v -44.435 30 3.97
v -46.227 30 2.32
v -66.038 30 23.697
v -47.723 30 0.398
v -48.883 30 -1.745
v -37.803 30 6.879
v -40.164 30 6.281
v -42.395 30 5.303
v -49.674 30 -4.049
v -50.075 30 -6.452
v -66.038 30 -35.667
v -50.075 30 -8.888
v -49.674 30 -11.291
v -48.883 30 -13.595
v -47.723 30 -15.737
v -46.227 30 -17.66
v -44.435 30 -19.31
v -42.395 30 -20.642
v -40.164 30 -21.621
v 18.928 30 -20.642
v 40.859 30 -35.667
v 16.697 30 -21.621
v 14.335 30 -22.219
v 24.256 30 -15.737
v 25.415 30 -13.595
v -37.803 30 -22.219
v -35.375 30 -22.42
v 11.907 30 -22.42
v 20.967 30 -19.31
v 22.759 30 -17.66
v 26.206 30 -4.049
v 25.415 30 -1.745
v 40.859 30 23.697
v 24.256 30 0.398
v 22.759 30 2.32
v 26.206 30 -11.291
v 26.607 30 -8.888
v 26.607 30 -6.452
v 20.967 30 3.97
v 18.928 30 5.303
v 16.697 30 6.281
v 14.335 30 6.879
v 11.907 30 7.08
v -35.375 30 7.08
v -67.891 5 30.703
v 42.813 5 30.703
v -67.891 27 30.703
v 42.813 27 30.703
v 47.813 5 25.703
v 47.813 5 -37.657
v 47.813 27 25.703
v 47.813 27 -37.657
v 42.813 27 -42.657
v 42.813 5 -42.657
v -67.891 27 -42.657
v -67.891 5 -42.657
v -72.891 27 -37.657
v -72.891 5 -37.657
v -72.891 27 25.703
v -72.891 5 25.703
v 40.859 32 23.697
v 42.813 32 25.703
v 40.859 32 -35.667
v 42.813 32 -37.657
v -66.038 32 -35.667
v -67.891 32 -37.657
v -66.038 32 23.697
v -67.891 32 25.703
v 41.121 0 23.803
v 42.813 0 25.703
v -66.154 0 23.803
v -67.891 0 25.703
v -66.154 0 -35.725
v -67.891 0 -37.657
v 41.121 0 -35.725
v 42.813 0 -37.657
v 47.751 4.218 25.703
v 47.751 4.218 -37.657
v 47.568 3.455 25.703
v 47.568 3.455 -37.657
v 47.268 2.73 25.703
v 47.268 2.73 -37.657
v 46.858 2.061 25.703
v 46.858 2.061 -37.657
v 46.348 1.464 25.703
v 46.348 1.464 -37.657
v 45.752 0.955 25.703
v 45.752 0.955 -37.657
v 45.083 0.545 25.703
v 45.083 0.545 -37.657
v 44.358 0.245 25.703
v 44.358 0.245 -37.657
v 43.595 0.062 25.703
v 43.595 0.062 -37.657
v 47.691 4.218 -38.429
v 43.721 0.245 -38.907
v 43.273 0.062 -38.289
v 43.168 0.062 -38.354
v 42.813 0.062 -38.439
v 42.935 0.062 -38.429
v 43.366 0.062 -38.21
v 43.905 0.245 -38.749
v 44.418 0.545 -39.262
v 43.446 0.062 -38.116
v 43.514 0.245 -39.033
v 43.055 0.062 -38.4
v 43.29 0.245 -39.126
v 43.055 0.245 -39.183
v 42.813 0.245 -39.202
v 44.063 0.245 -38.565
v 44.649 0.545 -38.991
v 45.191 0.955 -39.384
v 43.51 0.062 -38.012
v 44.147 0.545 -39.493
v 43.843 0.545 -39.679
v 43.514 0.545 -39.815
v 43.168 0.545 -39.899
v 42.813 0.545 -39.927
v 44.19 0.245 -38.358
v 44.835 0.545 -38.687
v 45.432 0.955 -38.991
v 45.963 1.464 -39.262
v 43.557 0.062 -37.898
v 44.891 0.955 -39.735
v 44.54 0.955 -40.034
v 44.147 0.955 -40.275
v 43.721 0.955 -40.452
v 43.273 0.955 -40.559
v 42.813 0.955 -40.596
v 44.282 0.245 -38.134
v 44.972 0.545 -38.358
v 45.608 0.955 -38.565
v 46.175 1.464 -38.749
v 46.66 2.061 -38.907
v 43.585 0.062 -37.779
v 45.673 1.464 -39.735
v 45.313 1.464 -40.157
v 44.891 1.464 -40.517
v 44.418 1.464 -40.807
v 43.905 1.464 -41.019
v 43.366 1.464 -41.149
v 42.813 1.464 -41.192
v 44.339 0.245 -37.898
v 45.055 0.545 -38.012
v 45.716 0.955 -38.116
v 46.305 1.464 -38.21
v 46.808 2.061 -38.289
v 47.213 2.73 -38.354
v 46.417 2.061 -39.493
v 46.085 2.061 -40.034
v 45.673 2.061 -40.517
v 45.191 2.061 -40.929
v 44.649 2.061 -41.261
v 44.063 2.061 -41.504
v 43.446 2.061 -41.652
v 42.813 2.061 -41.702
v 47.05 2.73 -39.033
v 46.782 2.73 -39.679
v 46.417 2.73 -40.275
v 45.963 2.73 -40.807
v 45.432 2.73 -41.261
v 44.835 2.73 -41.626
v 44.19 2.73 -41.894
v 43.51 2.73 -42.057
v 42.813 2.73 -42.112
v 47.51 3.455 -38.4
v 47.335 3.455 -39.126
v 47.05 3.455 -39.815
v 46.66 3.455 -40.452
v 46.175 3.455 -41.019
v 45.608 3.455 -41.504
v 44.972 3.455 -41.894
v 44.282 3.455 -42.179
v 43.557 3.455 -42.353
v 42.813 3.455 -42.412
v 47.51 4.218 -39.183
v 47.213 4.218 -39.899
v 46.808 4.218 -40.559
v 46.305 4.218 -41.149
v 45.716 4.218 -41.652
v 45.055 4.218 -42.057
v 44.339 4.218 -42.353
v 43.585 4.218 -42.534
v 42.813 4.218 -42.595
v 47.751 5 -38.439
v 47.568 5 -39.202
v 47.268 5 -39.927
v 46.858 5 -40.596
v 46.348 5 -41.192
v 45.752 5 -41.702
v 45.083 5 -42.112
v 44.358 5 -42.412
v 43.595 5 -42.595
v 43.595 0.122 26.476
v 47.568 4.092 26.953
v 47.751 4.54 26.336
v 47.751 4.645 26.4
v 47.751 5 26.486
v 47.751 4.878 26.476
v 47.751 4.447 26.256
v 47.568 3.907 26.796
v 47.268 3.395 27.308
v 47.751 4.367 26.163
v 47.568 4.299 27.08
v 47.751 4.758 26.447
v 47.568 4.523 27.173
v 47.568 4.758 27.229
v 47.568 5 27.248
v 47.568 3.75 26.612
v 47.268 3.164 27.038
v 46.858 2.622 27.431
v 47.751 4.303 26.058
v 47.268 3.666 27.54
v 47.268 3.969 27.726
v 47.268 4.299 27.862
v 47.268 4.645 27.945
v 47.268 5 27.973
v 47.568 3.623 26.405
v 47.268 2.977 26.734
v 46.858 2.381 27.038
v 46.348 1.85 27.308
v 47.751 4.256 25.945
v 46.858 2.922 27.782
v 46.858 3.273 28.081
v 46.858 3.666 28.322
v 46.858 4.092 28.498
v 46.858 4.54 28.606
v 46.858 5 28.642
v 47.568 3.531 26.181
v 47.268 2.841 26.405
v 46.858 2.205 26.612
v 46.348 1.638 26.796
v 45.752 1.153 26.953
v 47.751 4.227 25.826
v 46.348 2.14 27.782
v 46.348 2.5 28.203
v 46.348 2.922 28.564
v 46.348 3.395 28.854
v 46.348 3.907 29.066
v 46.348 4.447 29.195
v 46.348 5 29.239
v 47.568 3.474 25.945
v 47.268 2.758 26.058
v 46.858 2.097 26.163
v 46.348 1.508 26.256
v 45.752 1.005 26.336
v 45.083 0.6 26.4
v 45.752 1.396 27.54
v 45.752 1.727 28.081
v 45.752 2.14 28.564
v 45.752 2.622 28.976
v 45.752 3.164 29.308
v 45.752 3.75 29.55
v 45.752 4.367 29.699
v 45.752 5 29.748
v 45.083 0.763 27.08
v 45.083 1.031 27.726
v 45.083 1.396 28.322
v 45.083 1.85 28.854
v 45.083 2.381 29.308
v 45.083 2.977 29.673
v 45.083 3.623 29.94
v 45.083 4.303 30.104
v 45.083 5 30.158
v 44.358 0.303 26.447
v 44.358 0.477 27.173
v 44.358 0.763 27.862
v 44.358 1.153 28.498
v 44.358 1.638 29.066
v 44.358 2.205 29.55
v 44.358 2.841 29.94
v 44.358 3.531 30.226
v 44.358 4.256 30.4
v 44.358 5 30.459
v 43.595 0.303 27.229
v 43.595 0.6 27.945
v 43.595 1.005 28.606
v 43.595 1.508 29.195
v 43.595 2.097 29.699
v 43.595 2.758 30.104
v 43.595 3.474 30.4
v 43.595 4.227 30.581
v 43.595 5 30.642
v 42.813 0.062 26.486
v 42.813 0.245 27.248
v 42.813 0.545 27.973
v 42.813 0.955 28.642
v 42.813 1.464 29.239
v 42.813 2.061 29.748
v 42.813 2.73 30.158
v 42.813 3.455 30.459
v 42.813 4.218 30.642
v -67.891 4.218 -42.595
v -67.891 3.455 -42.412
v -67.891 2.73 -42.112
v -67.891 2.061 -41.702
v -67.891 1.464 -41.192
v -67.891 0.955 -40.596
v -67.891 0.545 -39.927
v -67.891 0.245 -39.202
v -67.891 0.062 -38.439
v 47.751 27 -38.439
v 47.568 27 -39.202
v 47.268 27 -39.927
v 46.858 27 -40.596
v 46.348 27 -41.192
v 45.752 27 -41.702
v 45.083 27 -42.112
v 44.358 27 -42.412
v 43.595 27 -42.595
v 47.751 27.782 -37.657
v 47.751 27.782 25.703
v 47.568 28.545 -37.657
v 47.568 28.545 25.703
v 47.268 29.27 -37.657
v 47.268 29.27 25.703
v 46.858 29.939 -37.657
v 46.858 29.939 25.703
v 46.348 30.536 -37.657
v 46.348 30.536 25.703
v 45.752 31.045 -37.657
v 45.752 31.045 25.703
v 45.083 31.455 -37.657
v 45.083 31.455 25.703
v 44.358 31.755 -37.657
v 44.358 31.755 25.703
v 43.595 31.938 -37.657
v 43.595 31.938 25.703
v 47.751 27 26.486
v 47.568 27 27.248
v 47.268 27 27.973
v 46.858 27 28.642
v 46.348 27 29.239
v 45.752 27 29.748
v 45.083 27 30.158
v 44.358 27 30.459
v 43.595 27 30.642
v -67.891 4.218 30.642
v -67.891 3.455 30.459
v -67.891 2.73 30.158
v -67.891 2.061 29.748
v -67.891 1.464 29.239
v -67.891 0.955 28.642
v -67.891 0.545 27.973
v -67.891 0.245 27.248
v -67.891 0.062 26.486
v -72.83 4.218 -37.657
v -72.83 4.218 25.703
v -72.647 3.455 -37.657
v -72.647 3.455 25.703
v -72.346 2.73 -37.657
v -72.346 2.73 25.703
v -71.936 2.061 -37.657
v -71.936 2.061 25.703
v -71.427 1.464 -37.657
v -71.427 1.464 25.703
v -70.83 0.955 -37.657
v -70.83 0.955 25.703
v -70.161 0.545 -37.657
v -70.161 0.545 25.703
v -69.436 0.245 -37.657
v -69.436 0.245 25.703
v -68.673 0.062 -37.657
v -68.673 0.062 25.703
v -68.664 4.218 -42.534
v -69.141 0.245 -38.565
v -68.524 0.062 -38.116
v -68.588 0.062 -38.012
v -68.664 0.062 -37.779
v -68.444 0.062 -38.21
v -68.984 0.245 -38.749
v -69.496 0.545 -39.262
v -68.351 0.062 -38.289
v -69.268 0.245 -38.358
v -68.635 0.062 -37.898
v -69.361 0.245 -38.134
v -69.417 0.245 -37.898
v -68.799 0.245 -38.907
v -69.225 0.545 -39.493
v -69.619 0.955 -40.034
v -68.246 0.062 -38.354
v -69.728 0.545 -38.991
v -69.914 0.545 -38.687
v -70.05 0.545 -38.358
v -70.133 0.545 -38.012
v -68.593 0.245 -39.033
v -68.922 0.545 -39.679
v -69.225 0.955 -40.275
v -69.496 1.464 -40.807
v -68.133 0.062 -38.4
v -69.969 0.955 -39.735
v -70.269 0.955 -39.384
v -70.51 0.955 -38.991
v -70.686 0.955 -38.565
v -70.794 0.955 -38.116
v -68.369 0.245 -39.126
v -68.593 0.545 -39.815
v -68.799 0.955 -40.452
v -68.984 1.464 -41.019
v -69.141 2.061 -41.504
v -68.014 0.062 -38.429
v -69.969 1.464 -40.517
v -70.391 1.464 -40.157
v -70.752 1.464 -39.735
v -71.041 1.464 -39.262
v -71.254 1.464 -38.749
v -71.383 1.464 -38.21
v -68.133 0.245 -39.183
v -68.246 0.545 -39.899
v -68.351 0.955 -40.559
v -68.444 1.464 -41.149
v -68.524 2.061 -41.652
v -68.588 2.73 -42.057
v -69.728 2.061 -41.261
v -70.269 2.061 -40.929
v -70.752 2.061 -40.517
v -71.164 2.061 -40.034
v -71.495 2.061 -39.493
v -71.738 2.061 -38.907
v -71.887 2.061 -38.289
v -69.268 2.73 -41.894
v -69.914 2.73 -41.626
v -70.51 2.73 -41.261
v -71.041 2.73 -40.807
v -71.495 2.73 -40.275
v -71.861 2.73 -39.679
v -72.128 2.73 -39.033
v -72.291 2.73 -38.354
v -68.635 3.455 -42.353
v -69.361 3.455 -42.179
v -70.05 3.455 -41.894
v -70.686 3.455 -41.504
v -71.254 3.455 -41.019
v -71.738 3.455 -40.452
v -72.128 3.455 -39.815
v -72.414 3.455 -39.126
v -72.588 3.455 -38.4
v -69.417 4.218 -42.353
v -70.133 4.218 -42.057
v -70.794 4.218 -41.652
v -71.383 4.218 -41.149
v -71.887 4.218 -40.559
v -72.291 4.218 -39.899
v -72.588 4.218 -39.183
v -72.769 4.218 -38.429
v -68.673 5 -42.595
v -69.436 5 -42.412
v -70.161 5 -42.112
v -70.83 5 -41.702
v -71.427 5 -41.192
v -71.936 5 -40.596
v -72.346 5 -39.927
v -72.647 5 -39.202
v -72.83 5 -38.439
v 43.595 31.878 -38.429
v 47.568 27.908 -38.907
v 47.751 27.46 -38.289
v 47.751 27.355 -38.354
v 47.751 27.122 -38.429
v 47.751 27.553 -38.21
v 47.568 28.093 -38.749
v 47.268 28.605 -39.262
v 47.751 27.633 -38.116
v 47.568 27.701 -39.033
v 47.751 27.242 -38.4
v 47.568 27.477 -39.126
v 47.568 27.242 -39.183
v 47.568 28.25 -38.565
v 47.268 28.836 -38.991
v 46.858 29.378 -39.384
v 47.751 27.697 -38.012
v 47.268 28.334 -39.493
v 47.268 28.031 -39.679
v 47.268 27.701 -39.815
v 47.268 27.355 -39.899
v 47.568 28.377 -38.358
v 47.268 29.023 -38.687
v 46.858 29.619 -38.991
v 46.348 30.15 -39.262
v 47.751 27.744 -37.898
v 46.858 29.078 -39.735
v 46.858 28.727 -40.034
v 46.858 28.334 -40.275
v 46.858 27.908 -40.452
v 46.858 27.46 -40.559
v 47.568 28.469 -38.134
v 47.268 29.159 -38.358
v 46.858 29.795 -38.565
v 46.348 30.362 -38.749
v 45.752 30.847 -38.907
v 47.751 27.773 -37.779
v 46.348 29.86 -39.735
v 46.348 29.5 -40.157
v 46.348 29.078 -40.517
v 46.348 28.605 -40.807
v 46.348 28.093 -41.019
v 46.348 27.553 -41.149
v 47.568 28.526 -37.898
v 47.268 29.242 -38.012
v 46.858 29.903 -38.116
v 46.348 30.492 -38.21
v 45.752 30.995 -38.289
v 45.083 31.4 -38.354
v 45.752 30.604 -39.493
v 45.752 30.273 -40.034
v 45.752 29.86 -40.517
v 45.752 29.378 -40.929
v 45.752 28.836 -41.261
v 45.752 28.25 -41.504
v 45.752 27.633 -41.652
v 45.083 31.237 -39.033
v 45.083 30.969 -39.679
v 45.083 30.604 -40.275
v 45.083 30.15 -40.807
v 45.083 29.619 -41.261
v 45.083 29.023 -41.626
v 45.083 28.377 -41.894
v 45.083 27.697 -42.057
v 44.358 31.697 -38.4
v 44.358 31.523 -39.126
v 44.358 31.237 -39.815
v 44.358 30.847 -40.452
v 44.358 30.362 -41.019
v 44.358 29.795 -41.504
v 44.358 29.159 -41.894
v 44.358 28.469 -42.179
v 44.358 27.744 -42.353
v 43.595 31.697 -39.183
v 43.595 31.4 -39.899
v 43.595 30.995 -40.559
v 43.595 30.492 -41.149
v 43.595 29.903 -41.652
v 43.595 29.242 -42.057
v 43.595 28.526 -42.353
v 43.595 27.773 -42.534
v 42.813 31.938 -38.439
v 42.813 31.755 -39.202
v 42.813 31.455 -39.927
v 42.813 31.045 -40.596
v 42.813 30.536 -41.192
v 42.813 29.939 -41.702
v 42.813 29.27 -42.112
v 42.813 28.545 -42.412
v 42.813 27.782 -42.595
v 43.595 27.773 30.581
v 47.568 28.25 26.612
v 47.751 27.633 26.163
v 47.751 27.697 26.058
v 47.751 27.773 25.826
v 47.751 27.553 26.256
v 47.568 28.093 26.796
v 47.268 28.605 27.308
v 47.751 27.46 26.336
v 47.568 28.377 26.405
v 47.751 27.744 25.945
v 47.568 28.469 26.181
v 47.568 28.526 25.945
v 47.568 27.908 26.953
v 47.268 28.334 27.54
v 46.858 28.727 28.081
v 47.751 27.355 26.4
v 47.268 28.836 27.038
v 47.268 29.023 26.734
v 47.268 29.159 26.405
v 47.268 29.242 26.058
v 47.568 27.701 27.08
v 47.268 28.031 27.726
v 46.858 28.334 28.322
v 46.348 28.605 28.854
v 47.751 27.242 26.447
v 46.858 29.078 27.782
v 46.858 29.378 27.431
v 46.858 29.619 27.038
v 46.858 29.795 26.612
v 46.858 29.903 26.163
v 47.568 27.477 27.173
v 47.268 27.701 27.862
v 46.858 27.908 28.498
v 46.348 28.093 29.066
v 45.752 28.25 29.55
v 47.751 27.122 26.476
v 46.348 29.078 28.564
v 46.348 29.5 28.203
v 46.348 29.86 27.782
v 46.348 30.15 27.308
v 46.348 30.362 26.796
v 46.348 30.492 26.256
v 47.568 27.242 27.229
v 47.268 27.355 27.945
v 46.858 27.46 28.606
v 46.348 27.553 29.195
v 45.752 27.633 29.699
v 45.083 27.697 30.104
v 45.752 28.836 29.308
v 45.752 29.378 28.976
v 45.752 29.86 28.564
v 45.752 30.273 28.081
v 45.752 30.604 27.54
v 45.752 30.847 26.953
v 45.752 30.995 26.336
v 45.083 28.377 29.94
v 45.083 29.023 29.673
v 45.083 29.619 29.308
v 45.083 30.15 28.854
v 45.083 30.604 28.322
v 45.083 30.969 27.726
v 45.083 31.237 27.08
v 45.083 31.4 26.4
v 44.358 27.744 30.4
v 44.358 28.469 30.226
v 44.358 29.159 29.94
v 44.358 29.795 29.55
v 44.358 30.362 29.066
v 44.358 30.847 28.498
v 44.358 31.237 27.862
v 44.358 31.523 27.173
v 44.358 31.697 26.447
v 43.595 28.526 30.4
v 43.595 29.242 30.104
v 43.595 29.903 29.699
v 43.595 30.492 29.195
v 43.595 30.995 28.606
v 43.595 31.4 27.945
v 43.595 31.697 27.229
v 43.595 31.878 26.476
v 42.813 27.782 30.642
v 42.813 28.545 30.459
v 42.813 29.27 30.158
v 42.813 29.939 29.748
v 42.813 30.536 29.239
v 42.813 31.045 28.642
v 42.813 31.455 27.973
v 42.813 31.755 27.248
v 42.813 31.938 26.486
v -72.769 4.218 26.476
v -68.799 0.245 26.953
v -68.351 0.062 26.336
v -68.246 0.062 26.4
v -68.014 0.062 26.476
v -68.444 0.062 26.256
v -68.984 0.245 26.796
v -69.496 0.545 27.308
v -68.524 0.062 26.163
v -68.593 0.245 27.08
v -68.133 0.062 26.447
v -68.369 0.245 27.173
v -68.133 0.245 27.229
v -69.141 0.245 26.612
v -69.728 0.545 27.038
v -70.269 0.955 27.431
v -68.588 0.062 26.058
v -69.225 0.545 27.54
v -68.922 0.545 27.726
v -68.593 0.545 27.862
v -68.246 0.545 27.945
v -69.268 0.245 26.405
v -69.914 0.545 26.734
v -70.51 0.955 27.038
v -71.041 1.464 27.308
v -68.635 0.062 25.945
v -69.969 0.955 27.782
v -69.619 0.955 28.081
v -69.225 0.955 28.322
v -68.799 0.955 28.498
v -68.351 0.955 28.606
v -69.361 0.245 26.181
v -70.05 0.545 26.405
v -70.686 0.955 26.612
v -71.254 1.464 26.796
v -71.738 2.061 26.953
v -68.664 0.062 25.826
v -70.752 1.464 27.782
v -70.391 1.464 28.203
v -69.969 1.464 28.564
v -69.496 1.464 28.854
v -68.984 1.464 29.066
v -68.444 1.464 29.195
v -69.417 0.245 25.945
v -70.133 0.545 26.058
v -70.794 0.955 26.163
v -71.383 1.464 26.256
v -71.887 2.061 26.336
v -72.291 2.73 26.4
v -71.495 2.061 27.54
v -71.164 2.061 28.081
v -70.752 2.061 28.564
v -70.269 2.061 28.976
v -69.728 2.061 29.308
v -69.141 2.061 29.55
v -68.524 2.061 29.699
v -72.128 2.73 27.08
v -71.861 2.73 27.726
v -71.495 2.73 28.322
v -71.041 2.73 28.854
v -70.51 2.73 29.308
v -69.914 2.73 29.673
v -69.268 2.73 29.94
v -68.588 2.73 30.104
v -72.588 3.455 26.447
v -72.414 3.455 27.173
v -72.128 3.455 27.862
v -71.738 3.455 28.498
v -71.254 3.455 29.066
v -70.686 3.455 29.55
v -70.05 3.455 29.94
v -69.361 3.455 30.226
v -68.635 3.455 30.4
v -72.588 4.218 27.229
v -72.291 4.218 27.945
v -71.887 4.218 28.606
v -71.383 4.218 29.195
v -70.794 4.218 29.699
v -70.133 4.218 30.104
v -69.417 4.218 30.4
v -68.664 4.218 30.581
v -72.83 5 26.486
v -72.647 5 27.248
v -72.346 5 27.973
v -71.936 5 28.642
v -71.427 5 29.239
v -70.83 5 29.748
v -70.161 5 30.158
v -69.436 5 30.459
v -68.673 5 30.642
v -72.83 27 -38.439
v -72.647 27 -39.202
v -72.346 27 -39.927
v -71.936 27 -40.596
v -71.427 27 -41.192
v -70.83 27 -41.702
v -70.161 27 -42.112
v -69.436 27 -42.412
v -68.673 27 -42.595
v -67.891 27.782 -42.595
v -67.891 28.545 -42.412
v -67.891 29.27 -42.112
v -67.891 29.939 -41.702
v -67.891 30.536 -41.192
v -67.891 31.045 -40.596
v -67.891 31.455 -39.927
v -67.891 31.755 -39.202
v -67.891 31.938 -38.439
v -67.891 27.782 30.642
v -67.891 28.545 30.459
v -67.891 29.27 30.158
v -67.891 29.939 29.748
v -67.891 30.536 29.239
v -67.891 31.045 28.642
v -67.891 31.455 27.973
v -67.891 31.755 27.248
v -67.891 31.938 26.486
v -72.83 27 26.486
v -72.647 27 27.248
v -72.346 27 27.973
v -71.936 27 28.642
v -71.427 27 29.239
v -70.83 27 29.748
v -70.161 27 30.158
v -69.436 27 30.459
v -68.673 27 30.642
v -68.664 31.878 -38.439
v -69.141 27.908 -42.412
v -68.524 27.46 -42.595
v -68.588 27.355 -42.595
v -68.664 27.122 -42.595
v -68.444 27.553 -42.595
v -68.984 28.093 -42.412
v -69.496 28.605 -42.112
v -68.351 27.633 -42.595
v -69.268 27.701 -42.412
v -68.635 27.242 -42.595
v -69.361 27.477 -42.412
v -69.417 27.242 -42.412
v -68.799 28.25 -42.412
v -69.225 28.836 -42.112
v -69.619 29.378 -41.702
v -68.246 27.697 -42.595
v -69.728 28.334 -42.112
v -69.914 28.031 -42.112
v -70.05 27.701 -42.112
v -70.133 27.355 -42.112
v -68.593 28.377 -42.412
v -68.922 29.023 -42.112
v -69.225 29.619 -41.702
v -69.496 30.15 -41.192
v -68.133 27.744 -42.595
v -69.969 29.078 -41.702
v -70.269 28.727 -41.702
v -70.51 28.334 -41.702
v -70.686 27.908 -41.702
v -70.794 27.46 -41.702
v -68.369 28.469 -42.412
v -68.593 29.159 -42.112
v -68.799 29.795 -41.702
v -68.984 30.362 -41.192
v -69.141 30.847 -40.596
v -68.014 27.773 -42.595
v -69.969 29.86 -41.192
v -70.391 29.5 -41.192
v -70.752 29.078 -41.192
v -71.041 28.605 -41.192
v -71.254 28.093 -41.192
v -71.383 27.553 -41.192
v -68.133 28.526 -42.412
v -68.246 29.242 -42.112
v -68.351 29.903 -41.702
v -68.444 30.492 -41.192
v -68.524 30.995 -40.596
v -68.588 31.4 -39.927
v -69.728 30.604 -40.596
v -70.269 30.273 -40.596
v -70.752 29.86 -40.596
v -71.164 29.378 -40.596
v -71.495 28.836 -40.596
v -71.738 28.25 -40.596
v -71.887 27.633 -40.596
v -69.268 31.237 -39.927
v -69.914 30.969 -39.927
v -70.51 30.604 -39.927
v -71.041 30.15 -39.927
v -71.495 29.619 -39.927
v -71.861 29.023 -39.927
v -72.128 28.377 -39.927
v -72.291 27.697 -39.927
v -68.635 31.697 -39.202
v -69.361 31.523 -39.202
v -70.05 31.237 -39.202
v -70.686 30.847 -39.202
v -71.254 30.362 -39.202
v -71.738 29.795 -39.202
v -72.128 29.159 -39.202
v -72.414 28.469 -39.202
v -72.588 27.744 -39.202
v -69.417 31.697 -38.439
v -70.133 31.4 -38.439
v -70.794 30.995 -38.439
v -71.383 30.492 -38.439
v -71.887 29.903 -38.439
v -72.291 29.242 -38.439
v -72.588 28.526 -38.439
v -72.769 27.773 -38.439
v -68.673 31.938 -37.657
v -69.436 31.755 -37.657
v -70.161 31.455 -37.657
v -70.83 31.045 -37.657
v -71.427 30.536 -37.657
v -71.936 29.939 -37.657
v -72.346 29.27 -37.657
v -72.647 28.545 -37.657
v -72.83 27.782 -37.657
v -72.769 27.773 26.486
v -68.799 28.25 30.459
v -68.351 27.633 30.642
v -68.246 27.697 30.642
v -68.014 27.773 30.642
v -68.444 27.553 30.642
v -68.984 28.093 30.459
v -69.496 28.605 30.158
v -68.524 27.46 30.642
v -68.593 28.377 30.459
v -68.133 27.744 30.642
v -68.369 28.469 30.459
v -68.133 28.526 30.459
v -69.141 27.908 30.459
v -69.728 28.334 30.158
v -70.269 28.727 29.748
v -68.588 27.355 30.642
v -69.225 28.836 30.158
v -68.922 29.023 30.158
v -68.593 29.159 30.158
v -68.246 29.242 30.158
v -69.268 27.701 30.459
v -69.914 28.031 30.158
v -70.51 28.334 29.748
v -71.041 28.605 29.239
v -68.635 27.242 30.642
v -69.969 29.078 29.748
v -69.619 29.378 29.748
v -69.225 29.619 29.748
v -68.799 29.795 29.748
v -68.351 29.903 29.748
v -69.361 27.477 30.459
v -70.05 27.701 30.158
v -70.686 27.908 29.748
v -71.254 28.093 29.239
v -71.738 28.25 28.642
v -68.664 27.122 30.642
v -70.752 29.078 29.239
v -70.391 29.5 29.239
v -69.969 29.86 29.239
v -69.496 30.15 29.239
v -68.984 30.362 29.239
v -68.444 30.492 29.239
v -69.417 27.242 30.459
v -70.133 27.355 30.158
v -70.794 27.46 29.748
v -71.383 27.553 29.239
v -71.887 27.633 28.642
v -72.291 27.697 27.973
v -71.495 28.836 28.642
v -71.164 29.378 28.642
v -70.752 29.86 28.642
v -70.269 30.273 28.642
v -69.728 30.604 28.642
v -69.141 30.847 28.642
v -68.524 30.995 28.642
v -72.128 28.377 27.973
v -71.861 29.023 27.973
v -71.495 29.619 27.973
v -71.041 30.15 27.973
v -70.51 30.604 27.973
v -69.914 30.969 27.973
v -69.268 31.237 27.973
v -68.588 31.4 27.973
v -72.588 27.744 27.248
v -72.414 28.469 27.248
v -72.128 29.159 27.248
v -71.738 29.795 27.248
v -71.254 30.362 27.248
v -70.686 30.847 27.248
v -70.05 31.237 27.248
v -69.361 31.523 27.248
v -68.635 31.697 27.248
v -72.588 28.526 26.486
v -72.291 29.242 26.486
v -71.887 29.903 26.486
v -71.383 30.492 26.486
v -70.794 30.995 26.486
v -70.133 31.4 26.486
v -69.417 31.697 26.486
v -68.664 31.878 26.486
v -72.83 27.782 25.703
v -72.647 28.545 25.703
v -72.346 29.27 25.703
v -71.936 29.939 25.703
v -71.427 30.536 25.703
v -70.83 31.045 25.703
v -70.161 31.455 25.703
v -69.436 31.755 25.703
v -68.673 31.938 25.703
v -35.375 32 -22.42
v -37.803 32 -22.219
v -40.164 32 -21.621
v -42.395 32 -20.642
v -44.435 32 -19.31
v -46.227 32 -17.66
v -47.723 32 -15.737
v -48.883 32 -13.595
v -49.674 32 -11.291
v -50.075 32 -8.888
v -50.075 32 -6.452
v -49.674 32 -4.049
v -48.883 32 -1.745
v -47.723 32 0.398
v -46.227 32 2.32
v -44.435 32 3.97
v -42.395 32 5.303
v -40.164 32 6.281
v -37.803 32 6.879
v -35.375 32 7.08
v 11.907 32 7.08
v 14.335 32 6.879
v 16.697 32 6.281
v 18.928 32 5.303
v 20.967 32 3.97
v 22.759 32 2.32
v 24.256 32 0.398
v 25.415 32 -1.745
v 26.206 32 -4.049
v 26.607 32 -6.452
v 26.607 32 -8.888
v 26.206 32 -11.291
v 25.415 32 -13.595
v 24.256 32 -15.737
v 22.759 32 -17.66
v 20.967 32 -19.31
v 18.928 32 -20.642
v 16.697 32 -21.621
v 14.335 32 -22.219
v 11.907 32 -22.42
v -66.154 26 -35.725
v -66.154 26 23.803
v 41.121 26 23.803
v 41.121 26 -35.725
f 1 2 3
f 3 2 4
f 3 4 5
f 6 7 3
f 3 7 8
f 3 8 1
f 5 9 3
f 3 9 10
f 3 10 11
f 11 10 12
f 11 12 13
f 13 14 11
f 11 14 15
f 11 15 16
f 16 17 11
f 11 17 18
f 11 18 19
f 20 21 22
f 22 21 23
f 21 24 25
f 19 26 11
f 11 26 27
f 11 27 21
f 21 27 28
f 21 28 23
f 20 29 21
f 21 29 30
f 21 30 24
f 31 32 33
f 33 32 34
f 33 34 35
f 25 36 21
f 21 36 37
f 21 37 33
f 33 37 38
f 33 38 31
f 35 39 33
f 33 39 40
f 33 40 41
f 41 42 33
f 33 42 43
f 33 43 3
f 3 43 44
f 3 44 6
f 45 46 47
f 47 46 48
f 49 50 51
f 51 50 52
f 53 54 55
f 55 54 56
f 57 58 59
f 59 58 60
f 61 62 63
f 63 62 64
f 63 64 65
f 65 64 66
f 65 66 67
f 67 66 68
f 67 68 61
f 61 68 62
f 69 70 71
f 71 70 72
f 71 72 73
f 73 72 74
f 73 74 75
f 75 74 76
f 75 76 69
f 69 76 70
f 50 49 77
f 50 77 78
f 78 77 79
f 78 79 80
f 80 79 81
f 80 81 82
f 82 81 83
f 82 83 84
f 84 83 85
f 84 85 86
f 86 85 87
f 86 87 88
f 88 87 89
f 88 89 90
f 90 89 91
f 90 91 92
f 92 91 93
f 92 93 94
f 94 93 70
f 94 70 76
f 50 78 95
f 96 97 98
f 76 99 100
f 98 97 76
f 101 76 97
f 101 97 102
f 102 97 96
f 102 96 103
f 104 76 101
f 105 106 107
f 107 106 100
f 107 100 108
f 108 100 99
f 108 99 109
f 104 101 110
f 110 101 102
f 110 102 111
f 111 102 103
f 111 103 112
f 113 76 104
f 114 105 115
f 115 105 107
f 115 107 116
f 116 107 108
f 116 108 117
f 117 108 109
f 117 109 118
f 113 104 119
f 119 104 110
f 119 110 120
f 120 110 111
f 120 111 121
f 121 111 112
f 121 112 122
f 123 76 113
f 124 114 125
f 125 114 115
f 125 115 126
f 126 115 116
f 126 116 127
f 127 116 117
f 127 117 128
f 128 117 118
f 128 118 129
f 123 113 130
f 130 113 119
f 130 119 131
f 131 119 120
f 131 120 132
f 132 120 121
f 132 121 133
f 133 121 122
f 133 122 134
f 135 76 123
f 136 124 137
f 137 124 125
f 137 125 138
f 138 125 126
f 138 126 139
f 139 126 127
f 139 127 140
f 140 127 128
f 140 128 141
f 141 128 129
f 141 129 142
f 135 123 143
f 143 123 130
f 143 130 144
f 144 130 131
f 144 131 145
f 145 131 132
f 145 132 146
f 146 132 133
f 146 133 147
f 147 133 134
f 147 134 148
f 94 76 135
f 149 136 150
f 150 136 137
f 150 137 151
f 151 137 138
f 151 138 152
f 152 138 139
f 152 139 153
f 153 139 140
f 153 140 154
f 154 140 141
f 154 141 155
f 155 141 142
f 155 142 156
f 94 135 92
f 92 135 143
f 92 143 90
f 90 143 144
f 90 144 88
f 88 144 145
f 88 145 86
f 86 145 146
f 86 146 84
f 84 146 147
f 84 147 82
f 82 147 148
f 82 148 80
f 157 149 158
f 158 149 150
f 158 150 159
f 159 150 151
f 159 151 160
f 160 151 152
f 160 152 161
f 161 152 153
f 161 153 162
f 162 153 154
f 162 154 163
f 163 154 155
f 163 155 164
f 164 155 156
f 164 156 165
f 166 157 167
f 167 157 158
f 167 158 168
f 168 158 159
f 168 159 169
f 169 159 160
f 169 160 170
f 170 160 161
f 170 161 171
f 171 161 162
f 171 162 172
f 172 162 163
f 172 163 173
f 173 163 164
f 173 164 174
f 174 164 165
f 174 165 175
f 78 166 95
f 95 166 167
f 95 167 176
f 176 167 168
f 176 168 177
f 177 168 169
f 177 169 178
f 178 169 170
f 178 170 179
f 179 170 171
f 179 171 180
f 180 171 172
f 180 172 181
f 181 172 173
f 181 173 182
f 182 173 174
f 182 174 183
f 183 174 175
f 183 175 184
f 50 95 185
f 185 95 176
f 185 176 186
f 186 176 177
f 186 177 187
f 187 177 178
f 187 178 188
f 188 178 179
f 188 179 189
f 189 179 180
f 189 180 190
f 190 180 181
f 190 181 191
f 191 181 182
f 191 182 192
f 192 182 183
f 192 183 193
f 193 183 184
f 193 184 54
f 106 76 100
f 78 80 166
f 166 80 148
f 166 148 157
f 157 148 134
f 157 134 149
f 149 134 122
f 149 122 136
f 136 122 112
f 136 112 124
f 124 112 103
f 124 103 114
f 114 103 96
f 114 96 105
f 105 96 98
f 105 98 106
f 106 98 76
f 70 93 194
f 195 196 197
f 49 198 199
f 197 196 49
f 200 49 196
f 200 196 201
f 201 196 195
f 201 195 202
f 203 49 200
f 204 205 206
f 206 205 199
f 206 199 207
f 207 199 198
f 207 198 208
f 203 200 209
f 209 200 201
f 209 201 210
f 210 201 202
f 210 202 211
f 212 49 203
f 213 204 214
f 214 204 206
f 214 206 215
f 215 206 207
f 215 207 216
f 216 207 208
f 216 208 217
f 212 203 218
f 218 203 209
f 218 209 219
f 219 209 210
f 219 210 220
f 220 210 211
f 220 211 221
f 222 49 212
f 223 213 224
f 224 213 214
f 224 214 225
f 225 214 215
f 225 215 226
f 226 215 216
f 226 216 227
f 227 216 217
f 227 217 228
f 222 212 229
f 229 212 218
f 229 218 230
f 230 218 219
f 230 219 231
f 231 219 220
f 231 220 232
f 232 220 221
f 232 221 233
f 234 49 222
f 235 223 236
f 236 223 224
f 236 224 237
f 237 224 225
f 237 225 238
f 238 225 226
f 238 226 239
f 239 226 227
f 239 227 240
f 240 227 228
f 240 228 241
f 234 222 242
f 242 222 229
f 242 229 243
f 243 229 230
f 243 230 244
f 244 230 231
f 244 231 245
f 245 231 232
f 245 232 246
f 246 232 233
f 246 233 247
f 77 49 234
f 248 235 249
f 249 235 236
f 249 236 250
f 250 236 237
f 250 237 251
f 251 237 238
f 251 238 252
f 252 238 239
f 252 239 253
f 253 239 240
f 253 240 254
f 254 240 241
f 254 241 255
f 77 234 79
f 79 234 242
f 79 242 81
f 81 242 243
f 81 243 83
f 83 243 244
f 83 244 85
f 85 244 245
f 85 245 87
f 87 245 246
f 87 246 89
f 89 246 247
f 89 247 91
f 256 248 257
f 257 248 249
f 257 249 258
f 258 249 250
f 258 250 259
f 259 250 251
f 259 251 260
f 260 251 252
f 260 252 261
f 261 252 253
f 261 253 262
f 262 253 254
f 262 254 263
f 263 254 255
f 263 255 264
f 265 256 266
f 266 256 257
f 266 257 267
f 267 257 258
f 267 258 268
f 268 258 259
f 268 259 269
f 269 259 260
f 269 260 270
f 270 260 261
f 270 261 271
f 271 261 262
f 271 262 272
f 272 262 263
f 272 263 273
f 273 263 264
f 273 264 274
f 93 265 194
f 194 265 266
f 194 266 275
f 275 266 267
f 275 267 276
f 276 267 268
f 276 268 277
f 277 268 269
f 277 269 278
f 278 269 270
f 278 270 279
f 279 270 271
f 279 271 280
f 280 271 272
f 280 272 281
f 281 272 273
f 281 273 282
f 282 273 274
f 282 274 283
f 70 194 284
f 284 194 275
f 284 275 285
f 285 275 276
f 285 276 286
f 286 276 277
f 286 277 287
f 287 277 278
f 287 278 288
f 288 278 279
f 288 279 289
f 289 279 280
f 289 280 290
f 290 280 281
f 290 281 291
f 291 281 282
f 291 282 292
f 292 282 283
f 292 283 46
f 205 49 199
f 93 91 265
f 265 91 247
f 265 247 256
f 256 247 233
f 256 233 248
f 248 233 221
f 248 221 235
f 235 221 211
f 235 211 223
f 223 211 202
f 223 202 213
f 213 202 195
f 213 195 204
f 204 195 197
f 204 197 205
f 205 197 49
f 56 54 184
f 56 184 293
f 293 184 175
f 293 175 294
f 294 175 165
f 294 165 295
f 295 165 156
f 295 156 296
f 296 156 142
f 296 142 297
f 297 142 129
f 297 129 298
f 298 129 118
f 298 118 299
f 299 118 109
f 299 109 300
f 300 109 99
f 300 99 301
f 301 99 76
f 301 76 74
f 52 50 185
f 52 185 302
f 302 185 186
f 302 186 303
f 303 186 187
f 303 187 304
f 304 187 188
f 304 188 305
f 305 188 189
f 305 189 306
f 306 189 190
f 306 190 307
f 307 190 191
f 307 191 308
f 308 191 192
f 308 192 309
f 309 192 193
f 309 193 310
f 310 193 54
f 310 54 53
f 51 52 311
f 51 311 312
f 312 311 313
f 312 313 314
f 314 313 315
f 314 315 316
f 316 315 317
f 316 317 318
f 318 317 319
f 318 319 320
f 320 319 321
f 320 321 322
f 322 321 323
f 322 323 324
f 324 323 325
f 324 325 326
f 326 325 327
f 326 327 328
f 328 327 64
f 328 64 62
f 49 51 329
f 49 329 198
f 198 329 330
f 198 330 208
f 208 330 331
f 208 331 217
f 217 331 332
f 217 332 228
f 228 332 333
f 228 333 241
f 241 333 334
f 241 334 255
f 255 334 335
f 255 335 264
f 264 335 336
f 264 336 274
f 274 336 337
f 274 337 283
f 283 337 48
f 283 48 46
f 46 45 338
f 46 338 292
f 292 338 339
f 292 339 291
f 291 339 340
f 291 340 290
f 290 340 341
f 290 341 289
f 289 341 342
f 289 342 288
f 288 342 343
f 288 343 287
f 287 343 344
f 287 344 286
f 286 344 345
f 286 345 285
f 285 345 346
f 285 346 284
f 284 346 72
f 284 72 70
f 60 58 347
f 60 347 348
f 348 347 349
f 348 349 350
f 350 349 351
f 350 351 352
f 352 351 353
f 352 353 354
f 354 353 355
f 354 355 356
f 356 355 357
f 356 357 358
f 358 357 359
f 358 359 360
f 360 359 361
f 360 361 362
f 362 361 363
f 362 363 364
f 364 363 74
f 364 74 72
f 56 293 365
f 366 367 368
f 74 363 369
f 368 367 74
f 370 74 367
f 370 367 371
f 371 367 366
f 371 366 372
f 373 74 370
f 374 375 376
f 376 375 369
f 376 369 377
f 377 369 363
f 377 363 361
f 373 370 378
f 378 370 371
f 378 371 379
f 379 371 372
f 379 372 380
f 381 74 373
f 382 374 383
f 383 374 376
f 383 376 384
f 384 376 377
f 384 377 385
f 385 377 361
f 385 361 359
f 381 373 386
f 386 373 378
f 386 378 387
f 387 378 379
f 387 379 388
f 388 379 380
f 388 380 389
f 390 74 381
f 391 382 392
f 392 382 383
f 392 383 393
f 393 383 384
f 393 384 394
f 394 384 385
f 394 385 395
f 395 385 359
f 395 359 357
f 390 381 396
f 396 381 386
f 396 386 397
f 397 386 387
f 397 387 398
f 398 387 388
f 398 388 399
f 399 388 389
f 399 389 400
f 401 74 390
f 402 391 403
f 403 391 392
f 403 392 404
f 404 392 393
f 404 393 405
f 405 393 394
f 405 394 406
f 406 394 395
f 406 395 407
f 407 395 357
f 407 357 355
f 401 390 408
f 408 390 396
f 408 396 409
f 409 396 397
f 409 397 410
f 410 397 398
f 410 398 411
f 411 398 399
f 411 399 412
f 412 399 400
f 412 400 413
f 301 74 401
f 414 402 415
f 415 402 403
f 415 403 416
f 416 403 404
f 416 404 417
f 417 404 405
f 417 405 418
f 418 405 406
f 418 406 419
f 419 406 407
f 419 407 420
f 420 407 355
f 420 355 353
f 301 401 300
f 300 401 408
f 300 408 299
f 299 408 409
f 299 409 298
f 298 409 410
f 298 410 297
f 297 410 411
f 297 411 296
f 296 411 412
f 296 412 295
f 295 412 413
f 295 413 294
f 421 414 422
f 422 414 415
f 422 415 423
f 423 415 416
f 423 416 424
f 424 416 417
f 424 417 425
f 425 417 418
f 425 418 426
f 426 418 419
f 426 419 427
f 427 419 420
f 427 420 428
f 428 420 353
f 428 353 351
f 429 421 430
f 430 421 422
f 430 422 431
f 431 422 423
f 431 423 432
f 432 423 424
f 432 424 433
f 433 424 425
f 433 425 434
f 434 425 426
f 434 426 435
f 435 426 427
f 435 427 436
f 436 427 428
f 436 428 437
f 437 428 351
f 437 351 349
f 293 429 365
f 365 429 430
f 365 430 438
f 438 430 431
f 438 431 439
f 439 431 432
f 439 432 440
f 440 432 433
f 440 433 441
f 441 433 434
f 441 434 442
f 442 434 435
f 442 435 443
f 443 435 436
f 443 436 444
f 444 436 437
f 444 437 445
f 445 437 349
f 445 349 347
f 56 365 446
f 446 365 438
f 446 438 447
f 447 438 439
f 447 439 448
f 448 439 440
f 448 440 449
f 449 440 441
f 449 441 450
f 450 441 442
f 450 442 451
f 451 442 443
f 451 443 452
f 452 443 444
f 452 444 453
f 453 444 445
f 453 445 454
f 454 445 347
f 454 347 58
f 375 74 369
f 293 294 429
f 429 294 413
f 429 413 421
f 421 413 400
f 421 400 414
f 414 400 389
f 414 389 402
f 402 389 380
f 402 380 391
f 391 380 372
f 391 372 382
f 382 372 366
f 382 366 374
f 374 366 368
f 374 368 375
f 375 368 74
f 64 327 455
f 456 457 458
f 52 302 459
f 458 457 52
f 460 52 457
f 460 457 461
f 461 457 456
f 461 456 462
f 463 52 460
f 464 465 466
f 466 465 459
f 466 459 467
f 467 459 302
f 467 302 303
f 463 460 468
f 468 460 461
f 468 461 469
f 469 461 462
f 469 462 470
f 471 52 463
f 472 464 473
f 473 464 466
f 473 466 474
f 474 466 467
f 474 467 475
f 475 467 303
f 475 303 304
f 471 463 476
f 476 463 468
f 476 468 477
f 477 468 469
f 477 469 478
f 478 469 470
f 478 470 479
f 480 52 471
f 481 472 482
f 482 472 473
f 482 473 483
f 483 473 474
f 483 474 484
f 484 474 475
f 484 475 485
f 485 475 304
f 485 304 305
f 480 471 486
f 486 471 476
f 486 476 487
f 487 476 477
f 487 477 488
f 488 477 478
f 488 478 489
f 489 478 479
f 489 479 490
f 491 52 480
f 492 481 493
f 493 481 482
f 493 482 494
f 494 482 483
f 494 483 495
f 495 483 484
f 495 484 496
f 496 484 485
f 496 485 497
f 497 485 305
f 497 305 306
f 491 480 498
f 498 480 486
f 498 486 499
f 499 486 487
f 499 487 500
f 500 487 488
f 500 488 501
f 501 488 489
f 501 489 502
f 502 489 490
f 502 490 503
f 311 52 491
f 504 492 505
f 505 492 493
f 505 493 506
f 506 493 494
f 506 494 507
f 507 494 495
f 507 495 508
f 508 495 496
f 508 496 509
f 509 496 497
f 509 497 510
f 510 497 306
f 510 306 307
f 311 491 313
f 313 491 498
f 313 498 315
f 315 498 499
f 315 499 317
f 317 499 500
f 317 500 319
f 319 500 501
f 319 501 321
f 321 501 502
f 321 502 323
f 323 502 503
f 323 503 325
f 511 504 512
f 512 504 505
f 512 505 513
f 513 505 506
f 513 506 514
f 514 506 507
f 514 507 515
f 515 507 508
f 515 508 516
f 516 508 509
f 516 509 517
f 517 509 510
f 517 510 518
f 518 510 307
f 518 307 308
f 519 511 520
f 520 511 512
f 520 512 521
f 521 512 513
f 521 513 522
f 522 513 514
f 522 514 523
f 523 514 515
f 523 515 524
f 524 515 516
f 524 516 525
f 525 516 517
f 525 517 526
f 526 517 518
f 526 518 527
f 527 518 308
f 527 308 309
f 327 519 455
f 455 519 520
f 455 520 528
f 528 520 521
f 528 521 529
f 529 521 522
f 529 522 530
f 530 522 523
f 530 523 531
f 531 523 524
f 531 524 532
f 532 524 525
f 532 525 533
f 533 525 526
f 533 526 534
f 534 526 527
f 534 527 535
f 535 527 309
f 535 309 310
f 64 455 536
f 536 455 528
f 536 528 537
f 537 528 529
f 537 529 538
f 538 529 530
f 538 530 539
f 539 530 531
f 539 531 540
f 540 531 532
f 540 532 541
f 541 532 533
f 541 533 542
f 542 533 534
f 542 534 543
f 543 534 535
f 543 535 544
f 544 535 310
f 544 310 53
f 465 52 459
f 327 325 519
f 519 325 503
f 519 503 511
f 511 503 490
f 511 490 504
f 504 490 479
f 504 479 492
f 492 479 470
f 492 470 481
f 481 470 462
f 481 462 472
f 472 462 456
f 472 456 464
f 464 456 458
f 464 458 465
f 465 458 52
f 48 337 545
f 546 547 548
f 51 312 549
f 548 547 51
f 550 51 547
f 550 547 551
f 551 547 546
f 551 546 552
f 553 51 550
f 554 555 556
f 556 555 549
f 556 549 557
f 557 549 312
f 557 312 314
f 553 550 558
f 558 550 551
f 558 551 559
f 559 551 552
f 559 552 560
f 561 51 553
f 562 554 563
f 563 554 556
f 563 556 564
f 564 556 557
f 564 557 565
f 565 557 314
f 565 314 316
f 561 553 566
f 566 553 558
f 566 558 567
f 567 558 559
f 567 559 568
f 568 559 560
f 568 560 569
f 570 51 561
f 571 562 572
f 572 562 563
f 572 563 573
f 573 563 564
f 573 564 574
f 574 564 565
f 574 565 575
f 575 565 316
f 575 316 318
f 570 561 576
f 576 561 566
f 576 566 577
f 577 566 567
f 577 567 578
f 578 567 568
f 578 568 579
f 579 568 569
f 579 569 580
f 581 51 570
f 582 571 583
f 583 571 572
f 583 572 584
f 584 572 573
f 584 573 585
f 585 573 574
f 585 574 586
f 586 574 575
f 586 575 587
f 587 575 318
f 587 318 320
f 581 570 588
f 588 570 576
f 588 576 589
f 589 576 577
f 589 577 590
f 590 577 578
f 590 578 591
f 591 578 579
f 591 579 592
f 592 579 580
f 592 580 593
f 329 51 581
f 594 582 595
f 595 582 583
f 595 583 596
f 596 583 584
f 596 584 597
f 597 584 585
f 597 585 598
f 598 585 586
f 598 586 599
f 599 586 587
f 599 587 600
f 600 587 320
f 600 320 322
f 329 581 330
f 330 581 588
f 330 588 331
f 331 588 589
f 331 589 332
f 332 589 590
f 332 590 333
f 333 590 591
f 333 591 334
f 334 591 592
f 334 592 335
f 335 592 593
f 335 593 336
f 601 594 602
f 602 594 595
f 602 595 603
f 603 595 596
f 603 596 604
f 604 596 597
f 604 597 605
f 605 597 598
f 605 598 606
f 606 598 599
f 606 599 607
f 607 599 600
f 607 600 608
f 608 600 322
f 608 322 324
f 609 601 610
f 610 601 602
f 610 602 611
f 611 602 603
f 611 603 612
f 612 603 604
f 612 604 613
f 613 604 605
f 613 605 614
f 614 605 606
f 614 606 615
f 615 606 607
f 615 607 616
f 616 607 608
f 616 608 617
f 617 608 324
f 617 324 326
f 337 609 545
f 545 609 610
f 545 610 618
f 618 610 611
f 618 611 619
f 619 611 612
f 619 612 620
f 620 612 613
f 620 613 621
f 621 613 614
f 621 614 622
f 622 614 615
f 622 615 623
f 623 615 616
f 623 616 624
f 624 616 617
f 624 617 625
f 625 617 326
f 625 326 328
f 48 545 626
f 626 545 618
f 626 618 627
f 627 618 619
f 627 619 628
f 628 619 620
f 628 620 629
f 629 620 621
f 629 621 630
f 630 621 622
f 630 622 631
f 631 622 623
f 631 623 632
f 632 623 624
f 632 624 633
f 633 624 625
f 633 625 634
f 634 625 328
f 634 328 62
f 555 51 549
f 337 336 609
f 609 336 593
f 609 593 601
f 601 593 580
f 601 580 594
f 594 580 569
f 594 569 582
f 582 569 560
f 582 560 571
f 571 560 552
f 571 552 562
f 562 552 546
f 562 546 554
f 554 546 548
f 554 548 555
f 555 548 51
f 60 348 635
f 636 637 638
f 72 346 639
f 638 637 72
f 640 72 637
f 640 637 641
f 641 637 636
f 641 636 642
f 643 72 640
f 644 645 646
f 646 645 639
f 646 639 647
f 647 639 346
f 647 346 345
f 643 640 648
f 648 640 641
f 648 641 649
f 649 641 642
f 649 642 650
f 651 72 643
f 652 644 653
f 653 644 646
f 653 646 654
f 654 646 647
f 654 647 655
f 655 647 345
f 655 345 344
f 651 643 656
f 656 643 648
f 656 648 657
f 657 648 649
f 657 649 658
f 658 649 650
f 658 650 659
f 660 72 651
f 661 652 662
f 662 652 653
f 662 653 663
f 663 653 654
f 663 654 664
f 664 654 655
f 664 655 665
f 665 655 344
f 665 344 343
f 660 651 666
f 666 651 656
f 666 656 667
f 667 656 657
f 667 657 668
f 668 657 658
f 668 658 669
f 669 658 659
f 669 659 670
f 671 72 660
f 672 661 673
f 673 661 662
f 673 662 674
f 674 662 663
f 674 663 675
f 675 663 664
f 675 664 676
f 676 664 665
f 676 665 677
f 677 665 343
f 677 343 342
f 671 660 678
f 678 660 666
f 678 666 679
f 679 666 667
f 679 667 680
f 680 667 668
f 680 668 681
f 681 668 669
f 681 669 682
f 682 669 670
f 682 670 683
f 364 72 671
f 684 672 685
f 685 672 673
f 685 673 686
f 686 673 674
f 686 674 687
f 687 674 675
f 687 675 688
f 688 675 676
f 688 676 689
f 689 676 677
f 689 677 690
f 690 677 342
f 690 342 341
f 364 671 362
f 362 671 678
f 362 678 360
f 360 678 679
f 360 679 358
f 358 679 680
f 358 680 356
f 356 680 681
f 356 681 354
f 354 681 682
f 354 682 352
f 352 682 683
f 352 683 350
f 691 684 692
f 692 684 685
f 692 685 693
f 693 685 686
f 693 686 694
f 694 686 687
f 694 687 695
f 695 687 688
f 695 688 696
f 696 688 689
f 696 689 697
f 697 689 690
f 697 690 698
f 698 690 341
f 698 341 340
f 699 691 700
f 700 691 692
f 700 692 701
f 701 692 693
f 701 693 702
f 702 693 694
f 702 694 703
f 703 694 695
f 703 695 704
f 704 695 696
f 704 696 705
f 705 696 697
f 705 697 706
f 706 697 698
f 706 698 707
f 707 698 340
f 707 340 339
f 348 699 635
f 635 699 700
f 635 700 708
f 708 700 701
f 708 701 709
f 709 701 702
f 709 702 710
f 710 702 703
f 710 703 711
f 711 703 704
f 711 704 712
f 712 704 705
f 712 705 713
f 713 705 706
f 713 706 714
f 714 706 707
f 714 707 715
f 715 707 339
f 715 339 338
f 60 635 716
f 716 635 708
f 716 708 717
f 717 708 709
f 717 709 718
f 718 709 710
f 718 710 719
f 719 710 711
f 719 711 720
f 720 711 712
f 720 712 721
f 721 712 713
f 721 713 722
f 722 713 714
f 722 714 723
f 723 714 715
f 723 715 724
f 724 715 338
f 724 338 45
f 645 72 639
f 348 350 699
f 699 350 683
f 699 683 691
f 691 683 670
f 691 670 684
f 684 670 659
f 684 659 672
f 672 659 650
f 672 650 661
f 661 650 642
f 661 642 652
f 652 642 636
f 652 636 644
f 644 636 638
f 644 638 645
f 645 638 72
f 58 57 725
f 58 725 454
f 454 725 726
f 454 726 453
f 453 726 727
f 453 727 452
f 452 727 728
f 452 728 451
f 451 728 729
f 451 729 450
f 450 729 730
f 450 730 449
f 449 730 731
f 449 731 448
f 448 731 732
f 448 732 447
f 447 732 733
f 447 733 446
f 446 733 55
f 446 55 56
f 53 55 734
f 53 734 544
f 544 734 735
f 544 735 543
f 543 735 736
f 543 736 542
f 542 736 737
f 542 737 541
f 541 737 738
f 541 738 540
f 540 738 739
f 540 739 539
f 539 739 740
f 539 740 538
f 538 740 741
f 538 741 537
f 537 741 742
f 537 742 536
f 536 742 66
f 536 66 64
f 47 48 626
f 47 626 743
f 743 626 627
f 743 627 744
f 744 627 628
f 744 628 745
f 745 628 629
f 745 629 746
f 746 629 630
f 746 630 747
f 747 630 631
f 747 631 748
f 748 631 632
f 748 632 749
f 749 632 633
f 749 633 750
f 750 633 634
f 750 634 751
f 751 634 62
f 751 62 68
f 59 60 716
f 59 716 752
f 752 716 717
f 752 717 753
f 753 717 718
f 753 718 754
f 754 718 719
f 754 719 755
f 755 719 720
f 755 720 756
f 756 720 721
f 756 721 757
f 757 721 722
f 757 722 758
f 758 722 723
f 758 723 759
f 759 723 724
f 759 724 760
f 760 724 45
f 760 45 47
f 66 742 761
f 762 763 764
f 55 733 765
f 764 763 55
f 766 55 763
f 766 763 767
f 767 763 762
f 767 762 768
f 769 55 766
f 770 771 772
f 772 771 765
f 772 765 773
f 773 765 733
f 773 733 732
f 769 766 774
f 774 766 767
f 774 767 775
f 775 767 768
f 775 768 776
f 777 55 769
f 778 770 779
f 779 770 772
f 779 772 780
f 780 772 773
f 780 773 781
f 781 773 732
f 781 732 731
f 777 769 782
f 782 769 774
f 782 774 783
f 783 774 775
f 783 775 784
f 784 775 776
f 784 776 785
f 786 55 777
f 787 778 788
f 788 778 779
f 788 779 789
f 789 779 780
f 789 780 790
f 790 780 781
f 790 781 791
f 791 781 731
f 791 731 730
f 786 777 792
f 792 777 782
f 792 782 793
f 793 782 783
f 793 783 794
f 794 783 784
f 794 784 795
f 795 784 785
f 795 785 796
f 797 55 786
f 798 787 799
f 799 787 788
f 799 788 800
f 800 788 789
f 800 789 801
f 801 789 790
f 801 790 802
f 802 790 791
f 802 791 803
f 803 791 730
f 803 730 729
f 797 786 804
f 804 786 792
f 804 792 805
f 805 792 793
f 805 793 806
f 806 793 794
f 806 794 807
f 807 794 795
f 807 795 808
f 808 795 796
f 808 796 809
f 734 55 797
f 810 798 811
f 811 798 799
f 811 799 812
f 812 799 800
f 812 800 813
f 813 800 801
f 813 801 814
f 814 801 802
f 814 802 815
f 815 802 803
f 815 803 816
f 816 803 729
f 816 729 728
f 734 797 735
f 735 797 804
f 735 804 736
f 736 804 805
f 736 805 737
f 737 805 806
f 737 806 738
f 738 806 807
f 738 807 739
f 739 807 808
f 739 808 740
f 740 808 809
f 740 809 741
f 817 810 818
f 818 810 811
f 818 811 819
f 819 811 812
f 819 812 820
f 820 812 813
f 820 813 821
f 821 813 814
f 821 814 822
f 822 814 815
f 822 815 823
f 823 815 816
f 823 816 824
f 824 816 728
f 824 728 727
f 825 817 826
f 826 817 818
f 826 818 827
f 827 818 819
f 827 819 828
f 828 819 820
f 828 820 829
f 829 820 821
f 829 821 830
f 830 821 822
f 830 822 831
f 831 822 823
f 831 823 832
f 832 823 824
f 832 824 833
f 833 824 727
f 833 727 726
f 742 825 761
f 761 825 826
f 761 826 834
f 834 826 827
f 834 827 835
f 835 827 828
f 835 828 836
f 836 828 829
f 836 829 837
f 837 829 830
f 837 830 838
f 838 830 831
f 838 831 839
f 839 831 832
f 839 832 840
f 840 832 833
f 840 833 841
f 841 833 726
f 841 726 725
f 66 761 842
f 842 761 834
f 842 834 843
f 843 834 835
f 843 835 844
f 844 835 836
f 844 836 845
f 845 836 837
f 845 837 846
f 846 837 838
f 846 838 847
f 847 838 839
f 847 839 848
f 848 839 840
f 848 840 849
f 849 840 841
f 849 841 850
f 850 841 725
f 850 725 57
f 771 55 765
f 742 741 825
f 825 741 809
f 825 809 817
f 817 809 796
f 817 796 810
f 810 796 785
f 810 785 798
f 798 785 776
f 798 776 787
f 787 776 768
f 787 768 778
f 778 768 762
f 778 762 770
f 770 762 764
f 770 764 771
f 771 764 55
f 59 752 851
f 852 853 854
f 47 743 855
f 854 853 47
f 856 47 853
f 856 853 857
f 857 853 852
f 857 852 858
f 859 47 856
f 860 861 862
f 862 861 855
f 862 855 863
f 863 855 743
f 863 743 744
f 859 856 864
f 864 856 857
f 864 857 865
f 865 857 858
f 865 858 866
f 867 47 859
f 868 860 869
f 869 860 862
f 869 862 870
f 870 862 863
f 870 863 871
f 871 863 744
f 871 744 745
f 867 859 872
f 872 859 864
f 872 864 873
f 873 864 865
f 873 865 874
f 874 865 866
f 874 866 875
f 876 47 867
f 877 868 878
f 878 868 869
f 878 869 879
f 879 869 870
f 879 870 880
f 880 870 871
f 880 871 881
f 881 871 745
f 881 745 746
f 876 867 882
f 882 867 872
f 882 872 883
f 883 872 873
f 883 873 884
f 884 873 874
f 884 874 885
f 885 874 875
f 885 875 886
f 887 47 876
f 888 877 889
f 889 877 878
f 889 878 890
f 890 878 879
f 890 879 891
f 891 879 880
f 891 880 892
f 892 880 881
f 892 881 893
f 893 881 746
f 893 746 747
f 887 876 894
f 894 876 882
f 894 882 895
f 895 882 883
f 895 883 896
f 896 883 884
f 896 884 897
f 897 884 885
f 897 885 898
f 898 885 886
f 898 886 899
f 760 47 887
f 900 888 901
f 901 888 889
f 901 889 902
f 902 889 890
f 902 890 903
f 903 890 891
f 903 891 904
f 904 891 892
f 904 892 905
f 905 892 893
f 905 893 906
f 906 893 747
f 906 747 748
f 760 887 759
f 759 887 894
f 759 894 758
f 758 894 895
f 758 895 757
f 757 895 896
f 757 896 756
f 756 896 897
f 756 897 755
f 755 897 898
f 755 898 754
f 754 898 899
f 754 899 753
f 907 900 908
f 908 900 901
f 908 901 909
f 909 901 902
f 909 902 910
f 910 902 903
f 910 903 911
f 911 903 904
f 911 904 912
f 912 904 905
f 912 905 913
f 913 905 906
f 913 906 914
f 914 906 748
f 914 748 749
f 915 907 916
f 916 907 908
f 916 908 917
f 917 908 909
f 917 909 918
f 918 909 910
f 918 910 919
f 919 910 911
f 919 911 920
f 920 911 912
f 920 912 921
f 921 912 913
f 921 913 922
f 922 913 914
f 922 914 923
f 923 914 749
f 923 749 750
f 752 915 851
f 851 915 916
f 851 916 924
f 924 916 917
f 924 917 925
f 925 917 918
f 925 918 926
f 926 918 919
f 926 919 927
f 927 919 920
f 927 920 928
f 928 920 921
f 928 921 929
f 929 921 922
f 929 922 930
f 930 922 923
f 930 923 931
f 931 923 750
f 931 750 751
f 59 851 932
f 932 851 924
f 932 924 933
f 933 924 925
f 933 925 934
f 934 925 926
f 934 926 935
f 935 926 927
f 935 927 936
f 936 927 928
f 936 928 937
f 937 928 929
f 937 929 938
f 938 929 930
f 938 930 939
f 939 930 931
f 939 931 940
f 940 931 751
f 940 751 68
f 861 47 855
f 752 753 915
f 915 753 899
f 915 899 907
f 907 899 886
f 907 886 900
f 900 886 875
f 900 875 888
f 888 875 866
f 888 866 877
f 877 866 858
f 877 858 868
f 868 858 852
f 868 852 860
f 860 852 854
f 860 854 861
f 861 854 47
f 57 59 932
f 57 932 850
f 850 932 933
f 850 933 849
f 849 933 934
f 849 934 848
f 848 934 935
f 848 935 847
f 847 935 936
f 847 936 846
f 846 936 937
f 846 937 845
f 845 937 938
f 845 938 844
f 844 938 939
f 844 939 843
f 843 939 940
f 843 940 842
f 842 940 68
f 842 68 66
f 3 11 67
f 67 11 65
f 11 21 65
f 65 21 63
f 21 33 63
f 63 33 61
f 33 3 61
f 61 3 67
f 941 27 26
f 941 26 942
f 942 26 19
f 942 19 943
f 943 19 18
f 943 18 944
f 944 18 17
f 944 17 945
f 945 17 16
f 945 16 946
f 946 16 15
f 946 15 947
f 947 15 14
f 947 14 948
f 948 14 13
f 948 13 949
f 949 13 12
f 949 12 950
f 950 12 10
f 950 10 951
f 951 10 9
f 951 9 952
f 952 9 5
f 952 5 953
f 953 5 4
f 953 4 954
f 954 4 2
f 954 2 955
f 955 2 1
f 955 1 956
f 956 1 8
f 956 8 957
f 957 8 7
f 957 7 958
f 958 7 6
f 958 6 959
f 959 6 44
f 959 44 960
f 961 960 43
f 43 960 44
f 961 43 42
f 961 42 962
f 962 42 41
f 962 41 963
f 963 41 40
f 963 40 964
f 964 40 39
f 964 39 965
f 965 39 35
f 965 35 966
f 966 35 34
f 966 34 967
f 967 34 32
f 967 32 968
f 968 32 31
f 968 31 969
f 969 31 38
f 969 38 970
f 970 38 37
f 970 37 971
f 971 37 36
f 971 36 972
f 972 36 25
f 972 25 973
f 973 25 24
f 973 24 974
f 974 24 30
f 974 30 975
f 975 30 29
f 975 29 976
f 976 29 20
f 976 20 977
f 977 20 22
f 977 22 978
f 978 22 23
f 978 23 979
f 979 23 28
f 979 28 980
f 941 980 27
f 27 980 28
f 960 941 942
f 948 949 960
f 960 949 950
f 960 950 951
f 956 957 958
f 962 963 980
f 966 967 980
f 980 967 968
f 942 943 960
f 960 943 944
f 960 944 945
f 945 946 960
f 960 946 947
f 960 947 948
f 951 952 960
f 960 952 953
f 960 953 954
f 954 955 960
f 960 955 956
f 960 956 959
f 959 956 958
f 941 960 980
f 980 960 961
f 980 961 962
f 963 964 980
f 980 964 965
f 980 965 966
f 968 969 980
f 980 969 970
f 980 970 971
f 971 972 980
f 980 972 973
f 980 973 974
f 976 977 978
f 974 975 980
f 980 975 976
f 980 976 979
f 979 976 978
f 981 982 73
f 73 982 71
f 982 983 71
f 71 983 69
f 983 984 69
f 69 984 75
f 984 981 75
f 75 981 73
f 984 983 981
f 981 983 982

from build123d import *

# Parameters (mm, degrees)
SKETCH_1_W          = 120.704131687
SKETCH_1_H          = 73.359986831
EXTRUDE_1_DEPTH     = 32
FILLET_4_R          = 5
SKETCH_2_W          = 103.308329398
SKETCH_2_H          = 57.020562217
EXTRUDE_2_DEPTH     = 1
SKETCH_3_W          = 106.896586693
SKETCH_3_H          = 59.364518817
CUT_EXTRUDE_1_DEPTH = 2
EXTRUDE_4_DEPTH     = 2
SKETCH_6_W          = 107.275121148
SKETCH_6_H          = 59.528469182
CUT_EXTRUDE_2_DEPTH = 26


with BuildPart() as part:
    # 草图1 → 凸台-拉伸1 (new body)
    with BuildSketch(Plane(origin=(0, 0, 0), x_dir=(1, 0, 0), z_dir=(0, 1, 0))):
        with Locations((-12.539167079, 5.976612345)):
            Rectangle(SKETCH_1_W, SKETCH_1_H)
    extrude(amount=EXTRUDE_1_DEPTH)

    # 圆角4
    fillet_4_edges = [part.edges().sort_by_distance(p)[0] for p in [
        (-12.539167078, 32, -42.656605761),
        (-72.891232922, 32, -5.976612346),
        (-12.539167078, 32, 30.70338107),
        (-72.891232922, 0, -5.976612346),
        (-12.539167078, 0, -42.656605761),
        (47.812898765, 0, -5.976612346),
        (-12.539167078, 0, 30.70338107),
        (-72.891232922, 16, 30.70338107),
        (-72.891232922, 16, -42.656605761),
        (47.812898765, 16, -42.656605761),
        (47.812898765, 16, 30.70338107),
        (47.812898765, 32, -5.976612346),
    ]]
    fillet(fillet_4_edges, radius=FILLET_4_R)

    # 草图2 → 凸台-拉伸2 (add)
    with BuildSketch(Plane(origin=(0, 32, 0), x_dir=(1, 0, 0), z_dir=(0, 1, 0))):
        with Locations((-12.689078598, 6.094786595)):
            Rectangle(SKETCH_2_W, SKETCH_2_H)
    extrude(amount=-EXTRUDE_2_DEPTH)

    # 草图3 → 切除-拉伸1 (cut)
    with BuildSketch(Plane(origin=(0, 32, 0), x_dir=(1, 0, 0), z_dir=(0, 1, 0))):
        with Locations((-12.5895853, 5.984959014)):
            Rectangle(SKETCH_3_W, SKETCH_3_H)
    extrude(amount=-CUT_EXTRUDE_1_DEPTH, mode=Mode.SUBTRACT)

    # 草图5 → 凸台-拉伸4 (add)
    with BuildSketch(Plane(origin=(0, 30, 0), x_dir=(1, 0, 0), z_dir=(0, 1, 0))):
        with BuildLine():
            Line((-35.374881663, 22.419896032), (11.907439302, 22.419896032))
            ThreePointArc((11.907439302, 22.419896032), (26.657556761, 7.669778573), (11.907439302, -7.080338886))
            Line((11.907439302, -7.080338886), (-35.374881663, -7.080338886))
            ThreePointArc((-35.374881663, -7.080338886), (-50.124999122, 7.669778573), (-35.374881663, 22.419896032))
        make_face()
    extrude(amount=EXTRUDE_4_DEPTH)

    # 草图6 → 切除-拉伸2 (cut)
    with BuildSketch(Plane.XZ):
        with Locations((-12.51647611, -5.961067915)):
            Rectangle(SKETCH_6_W, SKETCH_6_H)
    extrude(amount=-CUT_EXTRUDE_2_DEPTH, mode=Mode.SUBTRACT)


solid = part.part
